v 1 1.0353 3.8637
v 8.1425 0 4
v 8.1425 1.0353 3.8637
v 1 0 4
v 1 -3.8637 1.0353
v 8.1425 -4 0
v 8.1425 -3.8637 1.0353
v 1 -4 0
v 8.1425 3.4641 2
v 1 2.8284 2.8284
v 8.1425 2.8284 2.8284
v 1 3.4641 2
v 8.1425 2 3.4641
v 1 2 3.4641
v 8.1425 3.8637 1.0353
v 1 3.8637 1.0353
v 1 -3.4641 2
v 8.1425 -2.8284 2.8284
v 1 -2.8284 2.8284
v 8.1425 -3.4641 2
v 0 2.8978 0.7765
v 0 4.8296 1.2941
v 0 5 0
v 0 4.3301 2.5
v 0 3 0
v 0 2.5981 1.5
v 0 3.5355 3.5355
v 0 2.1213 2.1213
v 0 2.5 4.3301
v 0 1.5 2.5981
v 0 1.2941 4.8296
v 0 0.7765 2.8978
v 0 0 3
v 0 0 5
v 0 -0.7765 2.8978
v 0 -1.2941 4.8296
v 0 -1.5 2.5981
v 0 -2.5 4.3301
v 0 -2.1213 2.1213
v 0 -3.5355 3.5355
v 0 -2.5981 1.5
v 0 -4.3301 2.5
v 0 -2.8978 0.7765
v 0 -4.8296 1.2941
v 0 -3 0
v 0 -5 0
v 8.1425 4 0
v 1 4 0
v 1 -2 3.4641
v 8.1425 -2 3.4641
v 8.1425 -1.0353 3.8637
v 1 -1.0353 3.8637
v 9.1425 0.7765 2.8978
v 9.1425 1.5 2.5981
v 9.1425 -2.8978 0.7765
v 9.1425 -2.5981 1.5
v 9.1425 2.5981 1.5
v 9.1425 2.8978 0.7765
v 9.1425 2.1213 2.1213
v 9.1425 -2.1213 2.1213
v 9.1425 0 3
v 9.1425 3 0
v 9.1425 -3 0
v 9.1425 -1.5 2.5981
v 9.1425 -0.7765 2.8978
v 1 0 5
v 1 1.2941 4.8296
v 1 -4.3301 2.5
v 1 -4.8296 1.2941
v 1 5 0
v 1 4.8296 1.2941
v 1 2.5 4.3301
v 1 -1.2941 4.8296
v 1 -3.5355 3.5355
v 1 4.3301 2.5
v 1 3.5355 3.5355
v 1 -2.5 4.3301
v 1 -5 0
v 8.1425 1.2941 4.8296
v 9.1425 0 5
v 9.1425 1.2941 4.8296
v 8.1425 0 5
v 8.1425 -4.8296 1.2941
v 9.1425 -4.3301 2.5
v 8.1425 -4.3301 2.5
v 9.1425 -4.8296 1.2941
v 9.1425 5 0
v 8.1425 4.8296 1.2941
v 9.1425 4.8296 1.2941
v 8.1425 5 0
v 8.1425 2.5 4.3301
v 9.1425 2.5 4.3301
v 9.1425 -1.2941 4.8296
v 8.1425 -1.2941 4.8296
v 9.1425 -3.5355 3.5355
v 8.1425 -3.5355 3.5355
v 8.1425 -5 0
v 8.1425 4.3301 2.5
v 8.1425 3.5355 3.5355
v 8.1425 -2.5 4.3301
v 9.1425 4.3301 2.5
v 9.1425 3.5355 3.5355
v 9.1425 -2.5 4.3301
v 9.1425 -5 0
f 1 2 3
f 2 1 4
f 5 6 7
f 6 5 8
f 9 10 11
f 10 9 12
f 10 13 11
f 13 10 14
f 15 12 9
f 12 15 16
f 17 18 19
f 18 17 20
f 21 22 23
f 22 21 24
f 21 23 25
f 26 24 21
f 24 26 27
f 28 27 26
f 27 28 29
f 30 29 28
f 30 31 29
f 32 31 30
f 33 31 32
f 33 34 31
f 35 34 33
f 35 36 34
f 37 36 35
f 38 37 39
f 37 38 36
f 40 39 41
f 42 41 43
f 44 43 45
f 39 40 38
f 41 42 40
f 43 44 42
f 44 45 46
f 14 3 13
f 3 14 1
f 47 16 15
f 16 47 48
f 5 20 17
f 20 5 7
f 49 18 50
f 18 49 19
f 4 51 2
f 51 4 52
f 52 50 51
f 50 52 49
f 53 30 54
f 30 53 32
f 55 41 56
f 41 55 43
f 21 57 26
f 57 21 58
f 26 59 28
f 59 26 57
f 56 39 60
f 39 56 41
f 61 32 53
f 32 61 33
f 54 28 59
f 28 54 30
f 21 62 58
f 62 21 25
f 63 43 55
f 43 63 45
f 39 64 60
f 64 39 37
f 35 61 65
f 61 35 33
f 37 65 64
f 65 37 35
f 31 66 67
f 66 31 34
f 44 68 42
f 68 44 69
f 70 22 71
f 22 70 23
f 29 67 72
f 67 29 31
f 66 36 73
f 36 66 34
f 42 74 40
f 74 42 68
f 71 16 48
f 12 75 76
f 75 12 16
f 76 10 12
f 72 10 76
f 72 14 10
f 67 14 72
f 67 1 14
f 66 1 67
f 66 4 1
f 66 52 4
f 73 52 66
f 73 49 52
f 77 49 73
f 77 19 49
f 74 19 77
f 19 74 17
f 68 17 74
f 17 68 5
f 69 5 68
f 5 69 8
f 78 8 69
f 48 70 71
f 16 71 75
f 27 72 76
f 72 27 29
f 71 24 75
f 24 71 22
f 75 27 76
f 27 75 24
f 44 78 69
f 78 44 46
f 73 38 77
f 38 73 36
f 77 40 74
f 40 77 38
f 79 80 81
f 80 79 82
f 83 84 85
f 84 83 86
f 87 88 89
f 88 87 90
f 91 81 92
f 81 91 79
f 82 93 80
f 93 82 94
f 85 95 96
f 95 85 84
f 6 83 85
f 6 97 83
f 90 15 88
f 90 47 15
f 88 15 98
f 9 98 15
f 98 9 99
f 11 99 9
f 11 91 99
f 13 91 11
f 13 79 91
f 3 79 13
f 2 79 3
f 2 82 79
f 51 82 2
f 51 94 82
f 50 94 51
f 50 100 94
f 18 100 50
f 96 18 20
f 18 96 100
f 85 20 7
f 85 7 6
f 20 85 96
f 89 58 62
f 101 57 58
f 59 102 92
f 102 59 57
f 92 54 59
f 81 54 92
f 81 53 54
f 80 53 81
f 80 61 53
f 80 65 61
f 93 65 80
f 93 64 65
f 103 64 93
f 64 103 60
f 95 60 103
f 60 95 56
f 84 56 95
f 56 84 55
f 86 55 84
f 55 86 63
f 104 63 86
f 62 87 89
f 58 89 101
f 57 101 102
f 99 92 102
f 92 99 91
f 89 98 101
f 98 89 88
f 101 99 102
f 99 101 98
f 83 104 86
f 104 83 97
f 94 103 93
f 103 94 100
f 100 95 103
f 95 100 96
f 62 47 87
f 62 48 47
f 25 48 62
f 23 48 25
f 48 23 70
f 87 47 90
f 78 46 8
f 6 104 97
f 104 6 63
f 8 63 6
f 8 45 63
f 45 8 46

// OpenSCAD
// file: ../build_environments.scad
// build_environments.scad: modules to build level sections
//

module pool(diameter=10.0, wall_height=2.0, step_width=3.0, connections=[])
{
    difference() {
        union() {
        difference() {
            cylinder(h=0.5,r1=diameter+step_width,r2=diameter+step_width,$fn=48);
            translate([0,0,-0.1])
                cylinder(h=0.7,r1=diameter,r2=diameter,$fn=48);
        }
        difference() {
            cylinder(h=wall_height,r1=diameter+step_width+1.0,r2=diameter+step_width+1.0,$fn=48);
            translate([0,0,-0.1])
                cylinder(h=wall_height+0.2,r1=diameter+step_width,r2=diameter+step_width,$fn=48);
        }
        }
    
        for (c = connections)
        {
            rotate([0,90,0]) {
                angle = atan2(c[1],c[0]);
                rotate([-angle,0,0]) {
                    cylinder(h=diameter+5.0,r1=c[2],r2=c[2],$fn=48);
                }
            }
        }
    }
}

module straight(length=10.0, width=2.0, dy1=0.0, dy2=0.0, dz=0.0)
{
    dims = [0, 0, 0, 0, 0, (dz/length)];
    matrix = [
        [ 1, dims[0], dims[1], 0 ],
        [ dims[2], 1, dims[4], 0 ],
        [ dims[5], dims[3], 1, 0 ],
        [ 0, 0, 0, 1 ]
    ];
    multmatrix(matrix)
    difference() {
        translate([dy1,0,0])
        union() {
            rotate([0,90,0]) {
                difference() {
                    cylinder(h=(length-dy1-dy2),r1=width+1.0,r2=width+1.0,$fn=24);
                    translate([0,0,-0.1])
                        cylinder(h=(length-dy1-dy2+0.2),r1=width,r2=width,$fn=24);
                }
                difference() {
                    cylinder(h=1.0,r1=width+2.0,r2=width+2.0,$fn=24);
                    translate([0,0,-0.1])
                        cylinder(h=1.2,r1=width,r2=width,$fn=24);
                }
                translate([0,0,(length-dy1-dy2)-1.0]) {
                    difference() {
                        cylinder(h=1.0,r1=width+2.0,r2=width+2.0,$fn=24);
                        translate([0,0,-0.1])
                            cylinder(h=1.2,r1=width,r2=width,$fn=24);
                    }
                }
            }
        }
        translate([0,0,-(2*width+4.0)/2])
            cube([3*length,3*length,2*width+4.0],center=true);
    }
}

module curve(p0=[0,0], center=[0,0], dir=1, angle=0.0, width=2.0)
{
    radius = sqrt((p0[0]-center[0])*(p0[0]-center[0]) + (p0[1]-center[1])*(p0[1]-center[1]));
    if (dir == 0) {
        difference() {
            rotate([0,0,-90])
            difference() {
                rotate_extrude(angle = angle, convexity = 10, $fn=32)
                    translate([radius, 0, 0])
                        circle(r = width+1.0,$fn=24);
                rotate([0,0,-1.0])
                    rotate_extrude(angle = angle+2.0, convexity = 10, $fn=32)
                        translate([radius, 0, 0])
                            circle(r = width,$fn=24);
            }
            translate([0,0,-(2*width+4.0)/2])
                cube([5*radius,5*radius,2*width+4.0],center=true);
        }
    }
    else {
        difference() {
            rotate([0,0,90])
            difference() {
                rotate_extrude(angle = -angle, convexity = 10, $fn=32)
                    translate([radius, 0, 0])
                        circle(r = width+1.0,$fn=24);
                rotate([0,0,1.0])
                    rotate_extrude(angle = -angle-2.0, convexity = 10, $fn=32)
                        translate([radius, 0, 0])
                            circle(r = width,$fn=24);
            }
            translate([0,0,-(2*width+4.0)/2])
                cube([5*radius,5*radius,2*width+4.0],center=true);
        }
    }

}

// test pool
//pool(diameter=12.0000, wall_height=3.0000, step_width=3.0000, connections=[[0.0000,-26.0000,2.0000], [23.6074,0.0000,2.0000]]);

// test straight, slope
//straight(length=26.0000, width=2.0000, dy1=11.8322, dy2=6.7082, dz=0.0000);
//straight(length=29.1549, width=12.0000, dy1=0.0000, dy2=0.0000, dz=-15.0000);

// test curve
//curve(p0=[23.6074, 0.0000], center=[23.6074, 5.0000], dir=0, angle=60.1011, width=2.0000);
//curve(p0=[33.6426, 12.4219], center=[37.9771, 9.9295], dir=1, angle=120.4627, width=2.0000);
// main file
use <../build_environments.scad>;
straight(length=9.1425, width=3.0000, dy1=0.0000, dy2=0.0000, dz=0.0000);
